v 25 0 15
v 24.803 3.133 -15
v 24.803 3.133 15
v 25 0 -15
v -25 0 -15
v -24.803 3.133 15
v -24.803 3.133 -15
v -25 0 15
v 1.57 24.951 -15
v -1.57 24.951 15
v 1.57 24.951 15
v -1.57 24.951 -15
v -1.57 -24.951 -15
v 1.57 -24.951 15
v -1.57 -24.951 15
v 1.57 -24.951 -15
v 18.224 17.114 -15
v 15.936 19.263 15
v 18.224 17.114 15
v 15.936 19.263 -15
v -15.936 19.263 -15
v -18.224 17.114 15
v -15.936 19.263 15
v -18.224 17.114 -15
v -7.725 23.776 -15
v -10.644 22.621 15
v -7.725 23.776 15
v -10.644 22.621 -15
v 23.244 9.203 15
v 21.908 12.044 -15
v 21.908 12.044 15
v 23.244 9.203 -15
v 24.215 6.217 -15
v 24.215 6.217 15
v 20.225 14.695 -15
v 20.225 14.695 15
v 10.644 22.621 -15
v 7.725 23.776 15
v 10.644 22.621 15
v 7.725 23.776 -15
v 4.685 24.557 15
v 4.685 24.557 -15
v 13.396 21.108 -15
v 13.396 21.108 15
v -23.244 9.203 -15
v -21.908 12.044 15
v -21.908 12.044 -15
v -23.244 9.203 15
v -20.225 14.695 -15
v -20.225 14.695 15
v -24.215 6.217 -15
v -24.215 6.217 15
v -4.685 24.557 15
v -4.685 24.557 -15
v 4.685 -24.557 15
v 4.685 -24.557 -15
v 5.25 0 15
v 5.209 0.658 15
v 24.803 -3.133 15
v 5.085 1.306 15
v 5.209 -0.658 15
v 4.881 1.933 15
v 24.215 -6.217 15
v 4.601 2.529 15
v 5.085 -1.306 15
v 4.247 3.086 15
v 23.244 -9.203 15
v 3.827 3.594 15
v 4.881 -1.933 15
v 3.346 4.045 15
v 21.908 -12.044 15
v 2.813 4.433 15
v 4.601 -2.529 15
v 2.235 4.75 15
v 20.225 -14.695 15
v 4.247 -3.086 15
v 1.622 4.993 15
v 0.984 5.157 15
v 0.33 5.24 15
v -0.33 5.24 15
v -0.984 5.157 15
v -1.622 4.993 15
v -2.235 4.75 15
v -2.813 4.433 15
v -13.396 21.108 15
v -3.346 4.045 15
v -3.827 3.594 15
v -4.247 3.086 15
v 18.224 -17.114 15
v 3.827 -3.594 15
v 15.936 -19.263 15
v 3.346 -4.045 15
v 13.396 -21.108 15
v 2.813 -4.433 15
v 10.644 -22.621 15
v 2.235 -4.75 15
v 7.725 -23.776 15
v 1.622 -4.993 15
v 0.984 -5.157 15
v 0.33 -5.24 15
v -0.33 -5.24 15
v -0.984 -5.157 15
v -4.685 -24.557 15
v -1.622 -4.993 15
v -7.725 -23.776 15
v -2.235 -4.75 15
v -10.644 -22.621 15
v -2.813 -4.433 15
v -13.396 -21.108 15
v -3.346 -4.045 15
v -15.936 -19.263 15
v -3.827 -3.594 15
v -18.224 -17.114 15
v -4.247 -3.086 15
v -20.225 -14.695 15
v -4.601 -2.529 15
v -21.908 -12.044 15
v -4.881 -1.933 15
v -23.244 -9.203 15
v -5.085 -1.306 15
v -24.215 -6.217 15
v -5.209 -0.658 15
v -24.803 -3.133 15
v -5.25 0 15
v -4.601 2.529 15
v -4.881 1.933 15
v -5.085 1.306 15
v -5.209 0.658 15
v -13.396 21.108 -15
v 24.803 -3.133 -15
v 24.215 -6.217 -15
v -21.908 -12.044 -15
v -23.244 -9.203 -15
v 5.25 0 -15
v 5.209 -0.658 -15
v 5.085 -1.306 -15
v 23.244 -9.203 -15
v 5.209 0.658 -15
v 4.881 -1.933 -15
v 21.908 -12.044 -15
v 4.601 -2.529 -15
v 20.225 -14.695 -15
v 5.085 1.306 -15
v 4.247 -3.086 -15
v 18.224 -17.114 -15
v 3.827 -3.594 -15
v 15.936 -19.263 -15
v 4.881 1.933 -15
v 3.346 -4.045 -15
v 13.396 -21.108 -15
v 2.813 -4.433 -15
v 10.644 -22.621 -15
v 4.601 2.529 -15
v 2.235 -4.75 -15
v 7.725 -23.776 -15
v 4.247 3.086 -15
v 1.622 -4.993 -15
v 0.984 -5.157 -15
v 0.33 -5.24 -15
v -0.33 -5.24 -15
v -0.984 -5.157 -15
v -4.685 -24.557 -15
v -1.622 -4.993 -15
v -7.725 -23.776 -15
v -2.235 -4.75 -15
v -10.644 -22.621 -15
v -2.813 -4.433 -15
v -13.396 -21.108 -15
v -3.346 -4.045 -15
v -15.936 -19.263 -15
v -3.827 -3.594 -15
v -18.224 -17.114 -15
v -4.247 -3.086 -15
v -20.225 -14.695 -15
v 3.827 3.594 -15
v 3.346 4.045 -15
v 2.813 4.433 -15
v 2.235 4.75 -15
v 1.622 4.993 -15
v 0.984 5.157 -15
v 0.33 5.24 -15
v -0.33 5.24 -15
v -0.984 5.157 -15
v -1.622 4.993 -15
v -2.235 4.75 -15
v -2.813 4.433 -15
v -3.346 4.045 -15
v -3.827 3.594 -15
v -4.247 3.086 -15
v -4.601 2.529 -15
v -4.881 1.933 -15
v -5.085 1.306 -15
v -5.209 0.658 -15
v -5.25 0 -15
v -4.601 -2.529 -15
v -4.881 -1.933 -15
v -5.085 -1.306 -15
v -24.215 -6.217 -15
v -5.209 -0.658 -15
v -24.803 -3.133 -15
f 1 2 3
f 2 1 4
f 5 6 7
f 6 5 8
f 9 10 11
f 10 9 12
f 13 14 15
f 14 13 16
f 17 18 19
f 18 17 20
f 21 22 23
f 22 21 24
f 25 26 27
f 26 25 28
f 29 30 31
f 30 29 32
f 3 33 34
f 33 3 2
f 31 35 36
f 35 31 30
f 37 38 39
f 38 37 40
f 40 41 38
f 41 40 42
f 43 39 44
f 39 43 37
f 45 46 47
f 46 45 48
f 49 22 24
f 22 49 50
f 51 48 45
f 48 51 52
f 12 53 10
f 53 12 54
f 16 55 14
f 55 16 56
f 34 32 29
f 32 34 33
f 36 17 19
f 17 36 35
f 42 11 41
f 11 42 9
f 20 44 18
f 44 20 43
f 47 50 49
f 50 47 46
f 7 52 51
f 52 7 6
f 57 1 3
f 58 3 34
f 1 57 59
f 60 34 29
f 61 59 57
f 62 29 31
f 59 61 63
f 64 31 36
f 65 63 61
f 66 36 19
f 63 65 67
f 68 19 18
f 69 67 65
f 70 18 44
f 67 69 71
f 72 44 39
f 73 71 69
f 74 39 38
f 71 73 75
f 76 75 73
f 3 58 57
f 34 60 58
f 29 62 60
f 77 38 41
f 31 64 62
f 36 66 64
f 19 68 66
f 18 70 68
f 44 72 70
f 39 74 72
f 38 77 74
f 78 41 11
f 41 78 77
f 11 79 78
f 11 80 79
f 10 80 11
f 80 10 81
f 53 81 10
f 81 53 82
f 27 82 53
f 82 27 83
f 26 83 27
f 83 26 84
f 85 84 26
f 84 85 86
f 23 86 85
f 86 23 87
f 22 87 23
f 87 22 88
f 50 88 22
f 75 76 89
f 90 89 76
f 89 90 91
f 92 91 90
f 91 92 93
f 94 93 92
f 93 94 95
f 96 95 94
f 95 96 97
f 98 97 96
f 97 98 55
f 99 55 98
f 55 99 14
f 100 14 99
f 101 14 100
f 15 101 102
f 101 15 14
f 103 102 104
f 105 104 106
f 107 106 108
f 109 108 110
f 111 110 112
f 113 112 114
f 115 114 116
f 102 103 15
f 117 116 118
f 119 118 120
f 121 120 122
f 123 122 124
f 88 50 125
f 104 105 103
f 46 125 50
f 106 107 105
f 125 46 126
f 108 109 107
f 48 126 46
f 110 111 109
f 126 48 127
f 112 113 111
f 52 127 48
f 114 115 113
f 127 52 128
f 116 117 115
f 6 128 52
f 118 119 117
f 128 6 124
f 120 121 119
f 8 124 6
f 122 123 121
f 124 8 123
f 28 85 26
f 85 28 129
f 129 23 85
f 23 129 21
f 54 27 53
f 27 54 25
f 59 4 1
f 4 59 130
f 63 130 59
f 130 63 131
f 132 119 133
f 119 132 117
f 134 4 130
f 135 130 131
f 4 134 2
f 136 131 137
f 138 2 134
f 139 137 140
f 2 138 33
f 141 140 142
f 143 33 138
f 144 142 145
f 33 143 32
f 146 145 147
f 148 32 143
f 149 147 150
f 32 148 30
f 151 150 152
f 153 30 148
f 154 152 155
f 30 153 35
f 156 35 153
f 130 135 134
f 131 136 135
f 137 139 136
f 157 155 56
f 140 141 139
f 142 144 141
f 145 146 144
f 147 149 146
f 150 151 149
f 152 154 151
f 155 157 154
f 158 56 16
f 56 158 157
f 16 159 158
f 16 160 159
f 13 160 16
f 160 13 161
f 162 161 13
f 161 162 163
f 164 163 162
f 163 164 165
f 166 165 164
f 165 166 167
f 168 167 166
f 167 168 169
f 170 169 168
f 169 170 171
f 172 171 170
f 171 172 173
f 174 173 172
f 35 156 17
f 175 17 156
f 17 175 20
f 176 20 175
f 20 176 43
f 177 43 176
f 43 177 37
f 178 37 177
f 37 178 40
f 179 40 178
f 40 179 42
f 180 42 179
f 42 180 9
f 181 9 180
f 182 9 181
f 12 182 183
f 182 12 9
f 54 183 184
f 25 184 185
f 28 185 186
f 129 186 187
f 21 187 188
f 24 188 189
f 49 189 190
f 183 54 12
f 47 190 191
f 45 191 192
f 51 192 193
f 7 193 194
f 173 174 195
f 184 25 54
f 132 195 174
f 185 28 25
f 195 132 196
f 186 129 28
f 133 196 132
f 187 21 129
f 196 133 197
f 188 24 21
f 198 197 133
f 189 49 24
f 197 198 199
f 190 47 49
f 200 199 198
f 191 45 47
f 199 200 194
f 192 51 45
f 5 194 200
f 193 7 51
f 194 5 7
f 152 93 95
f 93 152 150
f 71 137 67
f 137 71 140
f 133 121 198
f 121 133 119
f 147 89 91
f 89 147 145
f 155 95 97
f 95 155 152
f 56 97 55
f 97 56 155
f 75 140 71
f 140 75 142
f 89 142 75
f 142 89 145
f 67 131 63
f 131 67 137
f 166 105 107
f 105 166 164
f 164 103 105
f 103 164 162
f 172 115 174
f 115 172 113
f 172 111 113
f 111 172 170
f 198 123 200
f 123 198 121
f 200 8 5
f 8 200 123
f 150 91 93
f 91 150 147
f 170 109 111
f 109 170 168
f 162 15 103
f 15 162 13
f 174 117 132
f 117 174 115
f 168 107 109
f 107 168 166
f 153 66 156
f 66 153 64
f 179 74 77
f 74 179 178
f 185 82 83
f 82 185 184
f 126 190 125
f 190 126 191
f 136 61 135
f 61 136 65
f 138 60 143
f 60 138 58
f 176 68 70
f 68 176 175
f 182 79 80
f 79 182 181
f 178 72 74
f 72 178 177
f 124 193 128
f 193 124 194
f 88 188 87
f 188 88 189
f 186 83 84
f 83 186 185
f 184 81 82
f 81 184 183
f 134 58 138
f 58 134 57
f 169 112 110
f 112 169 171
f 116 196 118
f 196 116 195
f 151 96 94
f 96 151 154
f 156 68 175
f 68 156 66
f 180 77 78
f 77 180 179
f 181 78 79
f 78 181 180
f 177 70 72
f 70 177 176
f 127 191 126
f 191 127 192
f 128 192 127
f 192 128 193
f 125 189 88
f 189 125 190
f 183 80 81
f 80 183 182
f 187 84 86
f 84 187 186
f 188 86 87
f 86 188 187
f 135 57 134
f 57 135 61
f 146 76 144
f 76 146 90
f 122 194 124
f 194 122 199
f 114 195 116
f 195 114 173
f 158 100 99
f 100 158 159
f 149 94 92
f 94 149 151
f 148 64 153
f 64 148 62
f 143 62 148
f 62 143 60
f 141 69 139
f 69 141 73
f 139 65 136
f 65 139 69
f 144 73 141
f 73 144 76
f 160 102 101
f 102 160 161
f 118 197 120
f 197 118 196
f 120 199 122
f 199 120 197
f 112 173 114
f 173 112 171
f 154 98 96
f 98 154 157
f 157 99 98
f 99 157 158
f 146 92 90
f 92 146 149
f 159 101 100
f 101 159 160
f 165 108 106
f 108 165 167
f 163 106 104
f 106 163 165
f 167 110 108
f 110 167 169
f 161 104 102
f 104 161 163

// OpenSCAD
$fn = 50;


difference() {
	union() {
		translate(v = [0, 0, -15.0000000000]) {
			cylinder(h = 30, r = 25.0000000000);
		}
	}
	union() {
		translate(v = [0, 0, -100.0000000000]) {
			cylinder(h = 200, r = 5.2500000000);
		}
	}
}
